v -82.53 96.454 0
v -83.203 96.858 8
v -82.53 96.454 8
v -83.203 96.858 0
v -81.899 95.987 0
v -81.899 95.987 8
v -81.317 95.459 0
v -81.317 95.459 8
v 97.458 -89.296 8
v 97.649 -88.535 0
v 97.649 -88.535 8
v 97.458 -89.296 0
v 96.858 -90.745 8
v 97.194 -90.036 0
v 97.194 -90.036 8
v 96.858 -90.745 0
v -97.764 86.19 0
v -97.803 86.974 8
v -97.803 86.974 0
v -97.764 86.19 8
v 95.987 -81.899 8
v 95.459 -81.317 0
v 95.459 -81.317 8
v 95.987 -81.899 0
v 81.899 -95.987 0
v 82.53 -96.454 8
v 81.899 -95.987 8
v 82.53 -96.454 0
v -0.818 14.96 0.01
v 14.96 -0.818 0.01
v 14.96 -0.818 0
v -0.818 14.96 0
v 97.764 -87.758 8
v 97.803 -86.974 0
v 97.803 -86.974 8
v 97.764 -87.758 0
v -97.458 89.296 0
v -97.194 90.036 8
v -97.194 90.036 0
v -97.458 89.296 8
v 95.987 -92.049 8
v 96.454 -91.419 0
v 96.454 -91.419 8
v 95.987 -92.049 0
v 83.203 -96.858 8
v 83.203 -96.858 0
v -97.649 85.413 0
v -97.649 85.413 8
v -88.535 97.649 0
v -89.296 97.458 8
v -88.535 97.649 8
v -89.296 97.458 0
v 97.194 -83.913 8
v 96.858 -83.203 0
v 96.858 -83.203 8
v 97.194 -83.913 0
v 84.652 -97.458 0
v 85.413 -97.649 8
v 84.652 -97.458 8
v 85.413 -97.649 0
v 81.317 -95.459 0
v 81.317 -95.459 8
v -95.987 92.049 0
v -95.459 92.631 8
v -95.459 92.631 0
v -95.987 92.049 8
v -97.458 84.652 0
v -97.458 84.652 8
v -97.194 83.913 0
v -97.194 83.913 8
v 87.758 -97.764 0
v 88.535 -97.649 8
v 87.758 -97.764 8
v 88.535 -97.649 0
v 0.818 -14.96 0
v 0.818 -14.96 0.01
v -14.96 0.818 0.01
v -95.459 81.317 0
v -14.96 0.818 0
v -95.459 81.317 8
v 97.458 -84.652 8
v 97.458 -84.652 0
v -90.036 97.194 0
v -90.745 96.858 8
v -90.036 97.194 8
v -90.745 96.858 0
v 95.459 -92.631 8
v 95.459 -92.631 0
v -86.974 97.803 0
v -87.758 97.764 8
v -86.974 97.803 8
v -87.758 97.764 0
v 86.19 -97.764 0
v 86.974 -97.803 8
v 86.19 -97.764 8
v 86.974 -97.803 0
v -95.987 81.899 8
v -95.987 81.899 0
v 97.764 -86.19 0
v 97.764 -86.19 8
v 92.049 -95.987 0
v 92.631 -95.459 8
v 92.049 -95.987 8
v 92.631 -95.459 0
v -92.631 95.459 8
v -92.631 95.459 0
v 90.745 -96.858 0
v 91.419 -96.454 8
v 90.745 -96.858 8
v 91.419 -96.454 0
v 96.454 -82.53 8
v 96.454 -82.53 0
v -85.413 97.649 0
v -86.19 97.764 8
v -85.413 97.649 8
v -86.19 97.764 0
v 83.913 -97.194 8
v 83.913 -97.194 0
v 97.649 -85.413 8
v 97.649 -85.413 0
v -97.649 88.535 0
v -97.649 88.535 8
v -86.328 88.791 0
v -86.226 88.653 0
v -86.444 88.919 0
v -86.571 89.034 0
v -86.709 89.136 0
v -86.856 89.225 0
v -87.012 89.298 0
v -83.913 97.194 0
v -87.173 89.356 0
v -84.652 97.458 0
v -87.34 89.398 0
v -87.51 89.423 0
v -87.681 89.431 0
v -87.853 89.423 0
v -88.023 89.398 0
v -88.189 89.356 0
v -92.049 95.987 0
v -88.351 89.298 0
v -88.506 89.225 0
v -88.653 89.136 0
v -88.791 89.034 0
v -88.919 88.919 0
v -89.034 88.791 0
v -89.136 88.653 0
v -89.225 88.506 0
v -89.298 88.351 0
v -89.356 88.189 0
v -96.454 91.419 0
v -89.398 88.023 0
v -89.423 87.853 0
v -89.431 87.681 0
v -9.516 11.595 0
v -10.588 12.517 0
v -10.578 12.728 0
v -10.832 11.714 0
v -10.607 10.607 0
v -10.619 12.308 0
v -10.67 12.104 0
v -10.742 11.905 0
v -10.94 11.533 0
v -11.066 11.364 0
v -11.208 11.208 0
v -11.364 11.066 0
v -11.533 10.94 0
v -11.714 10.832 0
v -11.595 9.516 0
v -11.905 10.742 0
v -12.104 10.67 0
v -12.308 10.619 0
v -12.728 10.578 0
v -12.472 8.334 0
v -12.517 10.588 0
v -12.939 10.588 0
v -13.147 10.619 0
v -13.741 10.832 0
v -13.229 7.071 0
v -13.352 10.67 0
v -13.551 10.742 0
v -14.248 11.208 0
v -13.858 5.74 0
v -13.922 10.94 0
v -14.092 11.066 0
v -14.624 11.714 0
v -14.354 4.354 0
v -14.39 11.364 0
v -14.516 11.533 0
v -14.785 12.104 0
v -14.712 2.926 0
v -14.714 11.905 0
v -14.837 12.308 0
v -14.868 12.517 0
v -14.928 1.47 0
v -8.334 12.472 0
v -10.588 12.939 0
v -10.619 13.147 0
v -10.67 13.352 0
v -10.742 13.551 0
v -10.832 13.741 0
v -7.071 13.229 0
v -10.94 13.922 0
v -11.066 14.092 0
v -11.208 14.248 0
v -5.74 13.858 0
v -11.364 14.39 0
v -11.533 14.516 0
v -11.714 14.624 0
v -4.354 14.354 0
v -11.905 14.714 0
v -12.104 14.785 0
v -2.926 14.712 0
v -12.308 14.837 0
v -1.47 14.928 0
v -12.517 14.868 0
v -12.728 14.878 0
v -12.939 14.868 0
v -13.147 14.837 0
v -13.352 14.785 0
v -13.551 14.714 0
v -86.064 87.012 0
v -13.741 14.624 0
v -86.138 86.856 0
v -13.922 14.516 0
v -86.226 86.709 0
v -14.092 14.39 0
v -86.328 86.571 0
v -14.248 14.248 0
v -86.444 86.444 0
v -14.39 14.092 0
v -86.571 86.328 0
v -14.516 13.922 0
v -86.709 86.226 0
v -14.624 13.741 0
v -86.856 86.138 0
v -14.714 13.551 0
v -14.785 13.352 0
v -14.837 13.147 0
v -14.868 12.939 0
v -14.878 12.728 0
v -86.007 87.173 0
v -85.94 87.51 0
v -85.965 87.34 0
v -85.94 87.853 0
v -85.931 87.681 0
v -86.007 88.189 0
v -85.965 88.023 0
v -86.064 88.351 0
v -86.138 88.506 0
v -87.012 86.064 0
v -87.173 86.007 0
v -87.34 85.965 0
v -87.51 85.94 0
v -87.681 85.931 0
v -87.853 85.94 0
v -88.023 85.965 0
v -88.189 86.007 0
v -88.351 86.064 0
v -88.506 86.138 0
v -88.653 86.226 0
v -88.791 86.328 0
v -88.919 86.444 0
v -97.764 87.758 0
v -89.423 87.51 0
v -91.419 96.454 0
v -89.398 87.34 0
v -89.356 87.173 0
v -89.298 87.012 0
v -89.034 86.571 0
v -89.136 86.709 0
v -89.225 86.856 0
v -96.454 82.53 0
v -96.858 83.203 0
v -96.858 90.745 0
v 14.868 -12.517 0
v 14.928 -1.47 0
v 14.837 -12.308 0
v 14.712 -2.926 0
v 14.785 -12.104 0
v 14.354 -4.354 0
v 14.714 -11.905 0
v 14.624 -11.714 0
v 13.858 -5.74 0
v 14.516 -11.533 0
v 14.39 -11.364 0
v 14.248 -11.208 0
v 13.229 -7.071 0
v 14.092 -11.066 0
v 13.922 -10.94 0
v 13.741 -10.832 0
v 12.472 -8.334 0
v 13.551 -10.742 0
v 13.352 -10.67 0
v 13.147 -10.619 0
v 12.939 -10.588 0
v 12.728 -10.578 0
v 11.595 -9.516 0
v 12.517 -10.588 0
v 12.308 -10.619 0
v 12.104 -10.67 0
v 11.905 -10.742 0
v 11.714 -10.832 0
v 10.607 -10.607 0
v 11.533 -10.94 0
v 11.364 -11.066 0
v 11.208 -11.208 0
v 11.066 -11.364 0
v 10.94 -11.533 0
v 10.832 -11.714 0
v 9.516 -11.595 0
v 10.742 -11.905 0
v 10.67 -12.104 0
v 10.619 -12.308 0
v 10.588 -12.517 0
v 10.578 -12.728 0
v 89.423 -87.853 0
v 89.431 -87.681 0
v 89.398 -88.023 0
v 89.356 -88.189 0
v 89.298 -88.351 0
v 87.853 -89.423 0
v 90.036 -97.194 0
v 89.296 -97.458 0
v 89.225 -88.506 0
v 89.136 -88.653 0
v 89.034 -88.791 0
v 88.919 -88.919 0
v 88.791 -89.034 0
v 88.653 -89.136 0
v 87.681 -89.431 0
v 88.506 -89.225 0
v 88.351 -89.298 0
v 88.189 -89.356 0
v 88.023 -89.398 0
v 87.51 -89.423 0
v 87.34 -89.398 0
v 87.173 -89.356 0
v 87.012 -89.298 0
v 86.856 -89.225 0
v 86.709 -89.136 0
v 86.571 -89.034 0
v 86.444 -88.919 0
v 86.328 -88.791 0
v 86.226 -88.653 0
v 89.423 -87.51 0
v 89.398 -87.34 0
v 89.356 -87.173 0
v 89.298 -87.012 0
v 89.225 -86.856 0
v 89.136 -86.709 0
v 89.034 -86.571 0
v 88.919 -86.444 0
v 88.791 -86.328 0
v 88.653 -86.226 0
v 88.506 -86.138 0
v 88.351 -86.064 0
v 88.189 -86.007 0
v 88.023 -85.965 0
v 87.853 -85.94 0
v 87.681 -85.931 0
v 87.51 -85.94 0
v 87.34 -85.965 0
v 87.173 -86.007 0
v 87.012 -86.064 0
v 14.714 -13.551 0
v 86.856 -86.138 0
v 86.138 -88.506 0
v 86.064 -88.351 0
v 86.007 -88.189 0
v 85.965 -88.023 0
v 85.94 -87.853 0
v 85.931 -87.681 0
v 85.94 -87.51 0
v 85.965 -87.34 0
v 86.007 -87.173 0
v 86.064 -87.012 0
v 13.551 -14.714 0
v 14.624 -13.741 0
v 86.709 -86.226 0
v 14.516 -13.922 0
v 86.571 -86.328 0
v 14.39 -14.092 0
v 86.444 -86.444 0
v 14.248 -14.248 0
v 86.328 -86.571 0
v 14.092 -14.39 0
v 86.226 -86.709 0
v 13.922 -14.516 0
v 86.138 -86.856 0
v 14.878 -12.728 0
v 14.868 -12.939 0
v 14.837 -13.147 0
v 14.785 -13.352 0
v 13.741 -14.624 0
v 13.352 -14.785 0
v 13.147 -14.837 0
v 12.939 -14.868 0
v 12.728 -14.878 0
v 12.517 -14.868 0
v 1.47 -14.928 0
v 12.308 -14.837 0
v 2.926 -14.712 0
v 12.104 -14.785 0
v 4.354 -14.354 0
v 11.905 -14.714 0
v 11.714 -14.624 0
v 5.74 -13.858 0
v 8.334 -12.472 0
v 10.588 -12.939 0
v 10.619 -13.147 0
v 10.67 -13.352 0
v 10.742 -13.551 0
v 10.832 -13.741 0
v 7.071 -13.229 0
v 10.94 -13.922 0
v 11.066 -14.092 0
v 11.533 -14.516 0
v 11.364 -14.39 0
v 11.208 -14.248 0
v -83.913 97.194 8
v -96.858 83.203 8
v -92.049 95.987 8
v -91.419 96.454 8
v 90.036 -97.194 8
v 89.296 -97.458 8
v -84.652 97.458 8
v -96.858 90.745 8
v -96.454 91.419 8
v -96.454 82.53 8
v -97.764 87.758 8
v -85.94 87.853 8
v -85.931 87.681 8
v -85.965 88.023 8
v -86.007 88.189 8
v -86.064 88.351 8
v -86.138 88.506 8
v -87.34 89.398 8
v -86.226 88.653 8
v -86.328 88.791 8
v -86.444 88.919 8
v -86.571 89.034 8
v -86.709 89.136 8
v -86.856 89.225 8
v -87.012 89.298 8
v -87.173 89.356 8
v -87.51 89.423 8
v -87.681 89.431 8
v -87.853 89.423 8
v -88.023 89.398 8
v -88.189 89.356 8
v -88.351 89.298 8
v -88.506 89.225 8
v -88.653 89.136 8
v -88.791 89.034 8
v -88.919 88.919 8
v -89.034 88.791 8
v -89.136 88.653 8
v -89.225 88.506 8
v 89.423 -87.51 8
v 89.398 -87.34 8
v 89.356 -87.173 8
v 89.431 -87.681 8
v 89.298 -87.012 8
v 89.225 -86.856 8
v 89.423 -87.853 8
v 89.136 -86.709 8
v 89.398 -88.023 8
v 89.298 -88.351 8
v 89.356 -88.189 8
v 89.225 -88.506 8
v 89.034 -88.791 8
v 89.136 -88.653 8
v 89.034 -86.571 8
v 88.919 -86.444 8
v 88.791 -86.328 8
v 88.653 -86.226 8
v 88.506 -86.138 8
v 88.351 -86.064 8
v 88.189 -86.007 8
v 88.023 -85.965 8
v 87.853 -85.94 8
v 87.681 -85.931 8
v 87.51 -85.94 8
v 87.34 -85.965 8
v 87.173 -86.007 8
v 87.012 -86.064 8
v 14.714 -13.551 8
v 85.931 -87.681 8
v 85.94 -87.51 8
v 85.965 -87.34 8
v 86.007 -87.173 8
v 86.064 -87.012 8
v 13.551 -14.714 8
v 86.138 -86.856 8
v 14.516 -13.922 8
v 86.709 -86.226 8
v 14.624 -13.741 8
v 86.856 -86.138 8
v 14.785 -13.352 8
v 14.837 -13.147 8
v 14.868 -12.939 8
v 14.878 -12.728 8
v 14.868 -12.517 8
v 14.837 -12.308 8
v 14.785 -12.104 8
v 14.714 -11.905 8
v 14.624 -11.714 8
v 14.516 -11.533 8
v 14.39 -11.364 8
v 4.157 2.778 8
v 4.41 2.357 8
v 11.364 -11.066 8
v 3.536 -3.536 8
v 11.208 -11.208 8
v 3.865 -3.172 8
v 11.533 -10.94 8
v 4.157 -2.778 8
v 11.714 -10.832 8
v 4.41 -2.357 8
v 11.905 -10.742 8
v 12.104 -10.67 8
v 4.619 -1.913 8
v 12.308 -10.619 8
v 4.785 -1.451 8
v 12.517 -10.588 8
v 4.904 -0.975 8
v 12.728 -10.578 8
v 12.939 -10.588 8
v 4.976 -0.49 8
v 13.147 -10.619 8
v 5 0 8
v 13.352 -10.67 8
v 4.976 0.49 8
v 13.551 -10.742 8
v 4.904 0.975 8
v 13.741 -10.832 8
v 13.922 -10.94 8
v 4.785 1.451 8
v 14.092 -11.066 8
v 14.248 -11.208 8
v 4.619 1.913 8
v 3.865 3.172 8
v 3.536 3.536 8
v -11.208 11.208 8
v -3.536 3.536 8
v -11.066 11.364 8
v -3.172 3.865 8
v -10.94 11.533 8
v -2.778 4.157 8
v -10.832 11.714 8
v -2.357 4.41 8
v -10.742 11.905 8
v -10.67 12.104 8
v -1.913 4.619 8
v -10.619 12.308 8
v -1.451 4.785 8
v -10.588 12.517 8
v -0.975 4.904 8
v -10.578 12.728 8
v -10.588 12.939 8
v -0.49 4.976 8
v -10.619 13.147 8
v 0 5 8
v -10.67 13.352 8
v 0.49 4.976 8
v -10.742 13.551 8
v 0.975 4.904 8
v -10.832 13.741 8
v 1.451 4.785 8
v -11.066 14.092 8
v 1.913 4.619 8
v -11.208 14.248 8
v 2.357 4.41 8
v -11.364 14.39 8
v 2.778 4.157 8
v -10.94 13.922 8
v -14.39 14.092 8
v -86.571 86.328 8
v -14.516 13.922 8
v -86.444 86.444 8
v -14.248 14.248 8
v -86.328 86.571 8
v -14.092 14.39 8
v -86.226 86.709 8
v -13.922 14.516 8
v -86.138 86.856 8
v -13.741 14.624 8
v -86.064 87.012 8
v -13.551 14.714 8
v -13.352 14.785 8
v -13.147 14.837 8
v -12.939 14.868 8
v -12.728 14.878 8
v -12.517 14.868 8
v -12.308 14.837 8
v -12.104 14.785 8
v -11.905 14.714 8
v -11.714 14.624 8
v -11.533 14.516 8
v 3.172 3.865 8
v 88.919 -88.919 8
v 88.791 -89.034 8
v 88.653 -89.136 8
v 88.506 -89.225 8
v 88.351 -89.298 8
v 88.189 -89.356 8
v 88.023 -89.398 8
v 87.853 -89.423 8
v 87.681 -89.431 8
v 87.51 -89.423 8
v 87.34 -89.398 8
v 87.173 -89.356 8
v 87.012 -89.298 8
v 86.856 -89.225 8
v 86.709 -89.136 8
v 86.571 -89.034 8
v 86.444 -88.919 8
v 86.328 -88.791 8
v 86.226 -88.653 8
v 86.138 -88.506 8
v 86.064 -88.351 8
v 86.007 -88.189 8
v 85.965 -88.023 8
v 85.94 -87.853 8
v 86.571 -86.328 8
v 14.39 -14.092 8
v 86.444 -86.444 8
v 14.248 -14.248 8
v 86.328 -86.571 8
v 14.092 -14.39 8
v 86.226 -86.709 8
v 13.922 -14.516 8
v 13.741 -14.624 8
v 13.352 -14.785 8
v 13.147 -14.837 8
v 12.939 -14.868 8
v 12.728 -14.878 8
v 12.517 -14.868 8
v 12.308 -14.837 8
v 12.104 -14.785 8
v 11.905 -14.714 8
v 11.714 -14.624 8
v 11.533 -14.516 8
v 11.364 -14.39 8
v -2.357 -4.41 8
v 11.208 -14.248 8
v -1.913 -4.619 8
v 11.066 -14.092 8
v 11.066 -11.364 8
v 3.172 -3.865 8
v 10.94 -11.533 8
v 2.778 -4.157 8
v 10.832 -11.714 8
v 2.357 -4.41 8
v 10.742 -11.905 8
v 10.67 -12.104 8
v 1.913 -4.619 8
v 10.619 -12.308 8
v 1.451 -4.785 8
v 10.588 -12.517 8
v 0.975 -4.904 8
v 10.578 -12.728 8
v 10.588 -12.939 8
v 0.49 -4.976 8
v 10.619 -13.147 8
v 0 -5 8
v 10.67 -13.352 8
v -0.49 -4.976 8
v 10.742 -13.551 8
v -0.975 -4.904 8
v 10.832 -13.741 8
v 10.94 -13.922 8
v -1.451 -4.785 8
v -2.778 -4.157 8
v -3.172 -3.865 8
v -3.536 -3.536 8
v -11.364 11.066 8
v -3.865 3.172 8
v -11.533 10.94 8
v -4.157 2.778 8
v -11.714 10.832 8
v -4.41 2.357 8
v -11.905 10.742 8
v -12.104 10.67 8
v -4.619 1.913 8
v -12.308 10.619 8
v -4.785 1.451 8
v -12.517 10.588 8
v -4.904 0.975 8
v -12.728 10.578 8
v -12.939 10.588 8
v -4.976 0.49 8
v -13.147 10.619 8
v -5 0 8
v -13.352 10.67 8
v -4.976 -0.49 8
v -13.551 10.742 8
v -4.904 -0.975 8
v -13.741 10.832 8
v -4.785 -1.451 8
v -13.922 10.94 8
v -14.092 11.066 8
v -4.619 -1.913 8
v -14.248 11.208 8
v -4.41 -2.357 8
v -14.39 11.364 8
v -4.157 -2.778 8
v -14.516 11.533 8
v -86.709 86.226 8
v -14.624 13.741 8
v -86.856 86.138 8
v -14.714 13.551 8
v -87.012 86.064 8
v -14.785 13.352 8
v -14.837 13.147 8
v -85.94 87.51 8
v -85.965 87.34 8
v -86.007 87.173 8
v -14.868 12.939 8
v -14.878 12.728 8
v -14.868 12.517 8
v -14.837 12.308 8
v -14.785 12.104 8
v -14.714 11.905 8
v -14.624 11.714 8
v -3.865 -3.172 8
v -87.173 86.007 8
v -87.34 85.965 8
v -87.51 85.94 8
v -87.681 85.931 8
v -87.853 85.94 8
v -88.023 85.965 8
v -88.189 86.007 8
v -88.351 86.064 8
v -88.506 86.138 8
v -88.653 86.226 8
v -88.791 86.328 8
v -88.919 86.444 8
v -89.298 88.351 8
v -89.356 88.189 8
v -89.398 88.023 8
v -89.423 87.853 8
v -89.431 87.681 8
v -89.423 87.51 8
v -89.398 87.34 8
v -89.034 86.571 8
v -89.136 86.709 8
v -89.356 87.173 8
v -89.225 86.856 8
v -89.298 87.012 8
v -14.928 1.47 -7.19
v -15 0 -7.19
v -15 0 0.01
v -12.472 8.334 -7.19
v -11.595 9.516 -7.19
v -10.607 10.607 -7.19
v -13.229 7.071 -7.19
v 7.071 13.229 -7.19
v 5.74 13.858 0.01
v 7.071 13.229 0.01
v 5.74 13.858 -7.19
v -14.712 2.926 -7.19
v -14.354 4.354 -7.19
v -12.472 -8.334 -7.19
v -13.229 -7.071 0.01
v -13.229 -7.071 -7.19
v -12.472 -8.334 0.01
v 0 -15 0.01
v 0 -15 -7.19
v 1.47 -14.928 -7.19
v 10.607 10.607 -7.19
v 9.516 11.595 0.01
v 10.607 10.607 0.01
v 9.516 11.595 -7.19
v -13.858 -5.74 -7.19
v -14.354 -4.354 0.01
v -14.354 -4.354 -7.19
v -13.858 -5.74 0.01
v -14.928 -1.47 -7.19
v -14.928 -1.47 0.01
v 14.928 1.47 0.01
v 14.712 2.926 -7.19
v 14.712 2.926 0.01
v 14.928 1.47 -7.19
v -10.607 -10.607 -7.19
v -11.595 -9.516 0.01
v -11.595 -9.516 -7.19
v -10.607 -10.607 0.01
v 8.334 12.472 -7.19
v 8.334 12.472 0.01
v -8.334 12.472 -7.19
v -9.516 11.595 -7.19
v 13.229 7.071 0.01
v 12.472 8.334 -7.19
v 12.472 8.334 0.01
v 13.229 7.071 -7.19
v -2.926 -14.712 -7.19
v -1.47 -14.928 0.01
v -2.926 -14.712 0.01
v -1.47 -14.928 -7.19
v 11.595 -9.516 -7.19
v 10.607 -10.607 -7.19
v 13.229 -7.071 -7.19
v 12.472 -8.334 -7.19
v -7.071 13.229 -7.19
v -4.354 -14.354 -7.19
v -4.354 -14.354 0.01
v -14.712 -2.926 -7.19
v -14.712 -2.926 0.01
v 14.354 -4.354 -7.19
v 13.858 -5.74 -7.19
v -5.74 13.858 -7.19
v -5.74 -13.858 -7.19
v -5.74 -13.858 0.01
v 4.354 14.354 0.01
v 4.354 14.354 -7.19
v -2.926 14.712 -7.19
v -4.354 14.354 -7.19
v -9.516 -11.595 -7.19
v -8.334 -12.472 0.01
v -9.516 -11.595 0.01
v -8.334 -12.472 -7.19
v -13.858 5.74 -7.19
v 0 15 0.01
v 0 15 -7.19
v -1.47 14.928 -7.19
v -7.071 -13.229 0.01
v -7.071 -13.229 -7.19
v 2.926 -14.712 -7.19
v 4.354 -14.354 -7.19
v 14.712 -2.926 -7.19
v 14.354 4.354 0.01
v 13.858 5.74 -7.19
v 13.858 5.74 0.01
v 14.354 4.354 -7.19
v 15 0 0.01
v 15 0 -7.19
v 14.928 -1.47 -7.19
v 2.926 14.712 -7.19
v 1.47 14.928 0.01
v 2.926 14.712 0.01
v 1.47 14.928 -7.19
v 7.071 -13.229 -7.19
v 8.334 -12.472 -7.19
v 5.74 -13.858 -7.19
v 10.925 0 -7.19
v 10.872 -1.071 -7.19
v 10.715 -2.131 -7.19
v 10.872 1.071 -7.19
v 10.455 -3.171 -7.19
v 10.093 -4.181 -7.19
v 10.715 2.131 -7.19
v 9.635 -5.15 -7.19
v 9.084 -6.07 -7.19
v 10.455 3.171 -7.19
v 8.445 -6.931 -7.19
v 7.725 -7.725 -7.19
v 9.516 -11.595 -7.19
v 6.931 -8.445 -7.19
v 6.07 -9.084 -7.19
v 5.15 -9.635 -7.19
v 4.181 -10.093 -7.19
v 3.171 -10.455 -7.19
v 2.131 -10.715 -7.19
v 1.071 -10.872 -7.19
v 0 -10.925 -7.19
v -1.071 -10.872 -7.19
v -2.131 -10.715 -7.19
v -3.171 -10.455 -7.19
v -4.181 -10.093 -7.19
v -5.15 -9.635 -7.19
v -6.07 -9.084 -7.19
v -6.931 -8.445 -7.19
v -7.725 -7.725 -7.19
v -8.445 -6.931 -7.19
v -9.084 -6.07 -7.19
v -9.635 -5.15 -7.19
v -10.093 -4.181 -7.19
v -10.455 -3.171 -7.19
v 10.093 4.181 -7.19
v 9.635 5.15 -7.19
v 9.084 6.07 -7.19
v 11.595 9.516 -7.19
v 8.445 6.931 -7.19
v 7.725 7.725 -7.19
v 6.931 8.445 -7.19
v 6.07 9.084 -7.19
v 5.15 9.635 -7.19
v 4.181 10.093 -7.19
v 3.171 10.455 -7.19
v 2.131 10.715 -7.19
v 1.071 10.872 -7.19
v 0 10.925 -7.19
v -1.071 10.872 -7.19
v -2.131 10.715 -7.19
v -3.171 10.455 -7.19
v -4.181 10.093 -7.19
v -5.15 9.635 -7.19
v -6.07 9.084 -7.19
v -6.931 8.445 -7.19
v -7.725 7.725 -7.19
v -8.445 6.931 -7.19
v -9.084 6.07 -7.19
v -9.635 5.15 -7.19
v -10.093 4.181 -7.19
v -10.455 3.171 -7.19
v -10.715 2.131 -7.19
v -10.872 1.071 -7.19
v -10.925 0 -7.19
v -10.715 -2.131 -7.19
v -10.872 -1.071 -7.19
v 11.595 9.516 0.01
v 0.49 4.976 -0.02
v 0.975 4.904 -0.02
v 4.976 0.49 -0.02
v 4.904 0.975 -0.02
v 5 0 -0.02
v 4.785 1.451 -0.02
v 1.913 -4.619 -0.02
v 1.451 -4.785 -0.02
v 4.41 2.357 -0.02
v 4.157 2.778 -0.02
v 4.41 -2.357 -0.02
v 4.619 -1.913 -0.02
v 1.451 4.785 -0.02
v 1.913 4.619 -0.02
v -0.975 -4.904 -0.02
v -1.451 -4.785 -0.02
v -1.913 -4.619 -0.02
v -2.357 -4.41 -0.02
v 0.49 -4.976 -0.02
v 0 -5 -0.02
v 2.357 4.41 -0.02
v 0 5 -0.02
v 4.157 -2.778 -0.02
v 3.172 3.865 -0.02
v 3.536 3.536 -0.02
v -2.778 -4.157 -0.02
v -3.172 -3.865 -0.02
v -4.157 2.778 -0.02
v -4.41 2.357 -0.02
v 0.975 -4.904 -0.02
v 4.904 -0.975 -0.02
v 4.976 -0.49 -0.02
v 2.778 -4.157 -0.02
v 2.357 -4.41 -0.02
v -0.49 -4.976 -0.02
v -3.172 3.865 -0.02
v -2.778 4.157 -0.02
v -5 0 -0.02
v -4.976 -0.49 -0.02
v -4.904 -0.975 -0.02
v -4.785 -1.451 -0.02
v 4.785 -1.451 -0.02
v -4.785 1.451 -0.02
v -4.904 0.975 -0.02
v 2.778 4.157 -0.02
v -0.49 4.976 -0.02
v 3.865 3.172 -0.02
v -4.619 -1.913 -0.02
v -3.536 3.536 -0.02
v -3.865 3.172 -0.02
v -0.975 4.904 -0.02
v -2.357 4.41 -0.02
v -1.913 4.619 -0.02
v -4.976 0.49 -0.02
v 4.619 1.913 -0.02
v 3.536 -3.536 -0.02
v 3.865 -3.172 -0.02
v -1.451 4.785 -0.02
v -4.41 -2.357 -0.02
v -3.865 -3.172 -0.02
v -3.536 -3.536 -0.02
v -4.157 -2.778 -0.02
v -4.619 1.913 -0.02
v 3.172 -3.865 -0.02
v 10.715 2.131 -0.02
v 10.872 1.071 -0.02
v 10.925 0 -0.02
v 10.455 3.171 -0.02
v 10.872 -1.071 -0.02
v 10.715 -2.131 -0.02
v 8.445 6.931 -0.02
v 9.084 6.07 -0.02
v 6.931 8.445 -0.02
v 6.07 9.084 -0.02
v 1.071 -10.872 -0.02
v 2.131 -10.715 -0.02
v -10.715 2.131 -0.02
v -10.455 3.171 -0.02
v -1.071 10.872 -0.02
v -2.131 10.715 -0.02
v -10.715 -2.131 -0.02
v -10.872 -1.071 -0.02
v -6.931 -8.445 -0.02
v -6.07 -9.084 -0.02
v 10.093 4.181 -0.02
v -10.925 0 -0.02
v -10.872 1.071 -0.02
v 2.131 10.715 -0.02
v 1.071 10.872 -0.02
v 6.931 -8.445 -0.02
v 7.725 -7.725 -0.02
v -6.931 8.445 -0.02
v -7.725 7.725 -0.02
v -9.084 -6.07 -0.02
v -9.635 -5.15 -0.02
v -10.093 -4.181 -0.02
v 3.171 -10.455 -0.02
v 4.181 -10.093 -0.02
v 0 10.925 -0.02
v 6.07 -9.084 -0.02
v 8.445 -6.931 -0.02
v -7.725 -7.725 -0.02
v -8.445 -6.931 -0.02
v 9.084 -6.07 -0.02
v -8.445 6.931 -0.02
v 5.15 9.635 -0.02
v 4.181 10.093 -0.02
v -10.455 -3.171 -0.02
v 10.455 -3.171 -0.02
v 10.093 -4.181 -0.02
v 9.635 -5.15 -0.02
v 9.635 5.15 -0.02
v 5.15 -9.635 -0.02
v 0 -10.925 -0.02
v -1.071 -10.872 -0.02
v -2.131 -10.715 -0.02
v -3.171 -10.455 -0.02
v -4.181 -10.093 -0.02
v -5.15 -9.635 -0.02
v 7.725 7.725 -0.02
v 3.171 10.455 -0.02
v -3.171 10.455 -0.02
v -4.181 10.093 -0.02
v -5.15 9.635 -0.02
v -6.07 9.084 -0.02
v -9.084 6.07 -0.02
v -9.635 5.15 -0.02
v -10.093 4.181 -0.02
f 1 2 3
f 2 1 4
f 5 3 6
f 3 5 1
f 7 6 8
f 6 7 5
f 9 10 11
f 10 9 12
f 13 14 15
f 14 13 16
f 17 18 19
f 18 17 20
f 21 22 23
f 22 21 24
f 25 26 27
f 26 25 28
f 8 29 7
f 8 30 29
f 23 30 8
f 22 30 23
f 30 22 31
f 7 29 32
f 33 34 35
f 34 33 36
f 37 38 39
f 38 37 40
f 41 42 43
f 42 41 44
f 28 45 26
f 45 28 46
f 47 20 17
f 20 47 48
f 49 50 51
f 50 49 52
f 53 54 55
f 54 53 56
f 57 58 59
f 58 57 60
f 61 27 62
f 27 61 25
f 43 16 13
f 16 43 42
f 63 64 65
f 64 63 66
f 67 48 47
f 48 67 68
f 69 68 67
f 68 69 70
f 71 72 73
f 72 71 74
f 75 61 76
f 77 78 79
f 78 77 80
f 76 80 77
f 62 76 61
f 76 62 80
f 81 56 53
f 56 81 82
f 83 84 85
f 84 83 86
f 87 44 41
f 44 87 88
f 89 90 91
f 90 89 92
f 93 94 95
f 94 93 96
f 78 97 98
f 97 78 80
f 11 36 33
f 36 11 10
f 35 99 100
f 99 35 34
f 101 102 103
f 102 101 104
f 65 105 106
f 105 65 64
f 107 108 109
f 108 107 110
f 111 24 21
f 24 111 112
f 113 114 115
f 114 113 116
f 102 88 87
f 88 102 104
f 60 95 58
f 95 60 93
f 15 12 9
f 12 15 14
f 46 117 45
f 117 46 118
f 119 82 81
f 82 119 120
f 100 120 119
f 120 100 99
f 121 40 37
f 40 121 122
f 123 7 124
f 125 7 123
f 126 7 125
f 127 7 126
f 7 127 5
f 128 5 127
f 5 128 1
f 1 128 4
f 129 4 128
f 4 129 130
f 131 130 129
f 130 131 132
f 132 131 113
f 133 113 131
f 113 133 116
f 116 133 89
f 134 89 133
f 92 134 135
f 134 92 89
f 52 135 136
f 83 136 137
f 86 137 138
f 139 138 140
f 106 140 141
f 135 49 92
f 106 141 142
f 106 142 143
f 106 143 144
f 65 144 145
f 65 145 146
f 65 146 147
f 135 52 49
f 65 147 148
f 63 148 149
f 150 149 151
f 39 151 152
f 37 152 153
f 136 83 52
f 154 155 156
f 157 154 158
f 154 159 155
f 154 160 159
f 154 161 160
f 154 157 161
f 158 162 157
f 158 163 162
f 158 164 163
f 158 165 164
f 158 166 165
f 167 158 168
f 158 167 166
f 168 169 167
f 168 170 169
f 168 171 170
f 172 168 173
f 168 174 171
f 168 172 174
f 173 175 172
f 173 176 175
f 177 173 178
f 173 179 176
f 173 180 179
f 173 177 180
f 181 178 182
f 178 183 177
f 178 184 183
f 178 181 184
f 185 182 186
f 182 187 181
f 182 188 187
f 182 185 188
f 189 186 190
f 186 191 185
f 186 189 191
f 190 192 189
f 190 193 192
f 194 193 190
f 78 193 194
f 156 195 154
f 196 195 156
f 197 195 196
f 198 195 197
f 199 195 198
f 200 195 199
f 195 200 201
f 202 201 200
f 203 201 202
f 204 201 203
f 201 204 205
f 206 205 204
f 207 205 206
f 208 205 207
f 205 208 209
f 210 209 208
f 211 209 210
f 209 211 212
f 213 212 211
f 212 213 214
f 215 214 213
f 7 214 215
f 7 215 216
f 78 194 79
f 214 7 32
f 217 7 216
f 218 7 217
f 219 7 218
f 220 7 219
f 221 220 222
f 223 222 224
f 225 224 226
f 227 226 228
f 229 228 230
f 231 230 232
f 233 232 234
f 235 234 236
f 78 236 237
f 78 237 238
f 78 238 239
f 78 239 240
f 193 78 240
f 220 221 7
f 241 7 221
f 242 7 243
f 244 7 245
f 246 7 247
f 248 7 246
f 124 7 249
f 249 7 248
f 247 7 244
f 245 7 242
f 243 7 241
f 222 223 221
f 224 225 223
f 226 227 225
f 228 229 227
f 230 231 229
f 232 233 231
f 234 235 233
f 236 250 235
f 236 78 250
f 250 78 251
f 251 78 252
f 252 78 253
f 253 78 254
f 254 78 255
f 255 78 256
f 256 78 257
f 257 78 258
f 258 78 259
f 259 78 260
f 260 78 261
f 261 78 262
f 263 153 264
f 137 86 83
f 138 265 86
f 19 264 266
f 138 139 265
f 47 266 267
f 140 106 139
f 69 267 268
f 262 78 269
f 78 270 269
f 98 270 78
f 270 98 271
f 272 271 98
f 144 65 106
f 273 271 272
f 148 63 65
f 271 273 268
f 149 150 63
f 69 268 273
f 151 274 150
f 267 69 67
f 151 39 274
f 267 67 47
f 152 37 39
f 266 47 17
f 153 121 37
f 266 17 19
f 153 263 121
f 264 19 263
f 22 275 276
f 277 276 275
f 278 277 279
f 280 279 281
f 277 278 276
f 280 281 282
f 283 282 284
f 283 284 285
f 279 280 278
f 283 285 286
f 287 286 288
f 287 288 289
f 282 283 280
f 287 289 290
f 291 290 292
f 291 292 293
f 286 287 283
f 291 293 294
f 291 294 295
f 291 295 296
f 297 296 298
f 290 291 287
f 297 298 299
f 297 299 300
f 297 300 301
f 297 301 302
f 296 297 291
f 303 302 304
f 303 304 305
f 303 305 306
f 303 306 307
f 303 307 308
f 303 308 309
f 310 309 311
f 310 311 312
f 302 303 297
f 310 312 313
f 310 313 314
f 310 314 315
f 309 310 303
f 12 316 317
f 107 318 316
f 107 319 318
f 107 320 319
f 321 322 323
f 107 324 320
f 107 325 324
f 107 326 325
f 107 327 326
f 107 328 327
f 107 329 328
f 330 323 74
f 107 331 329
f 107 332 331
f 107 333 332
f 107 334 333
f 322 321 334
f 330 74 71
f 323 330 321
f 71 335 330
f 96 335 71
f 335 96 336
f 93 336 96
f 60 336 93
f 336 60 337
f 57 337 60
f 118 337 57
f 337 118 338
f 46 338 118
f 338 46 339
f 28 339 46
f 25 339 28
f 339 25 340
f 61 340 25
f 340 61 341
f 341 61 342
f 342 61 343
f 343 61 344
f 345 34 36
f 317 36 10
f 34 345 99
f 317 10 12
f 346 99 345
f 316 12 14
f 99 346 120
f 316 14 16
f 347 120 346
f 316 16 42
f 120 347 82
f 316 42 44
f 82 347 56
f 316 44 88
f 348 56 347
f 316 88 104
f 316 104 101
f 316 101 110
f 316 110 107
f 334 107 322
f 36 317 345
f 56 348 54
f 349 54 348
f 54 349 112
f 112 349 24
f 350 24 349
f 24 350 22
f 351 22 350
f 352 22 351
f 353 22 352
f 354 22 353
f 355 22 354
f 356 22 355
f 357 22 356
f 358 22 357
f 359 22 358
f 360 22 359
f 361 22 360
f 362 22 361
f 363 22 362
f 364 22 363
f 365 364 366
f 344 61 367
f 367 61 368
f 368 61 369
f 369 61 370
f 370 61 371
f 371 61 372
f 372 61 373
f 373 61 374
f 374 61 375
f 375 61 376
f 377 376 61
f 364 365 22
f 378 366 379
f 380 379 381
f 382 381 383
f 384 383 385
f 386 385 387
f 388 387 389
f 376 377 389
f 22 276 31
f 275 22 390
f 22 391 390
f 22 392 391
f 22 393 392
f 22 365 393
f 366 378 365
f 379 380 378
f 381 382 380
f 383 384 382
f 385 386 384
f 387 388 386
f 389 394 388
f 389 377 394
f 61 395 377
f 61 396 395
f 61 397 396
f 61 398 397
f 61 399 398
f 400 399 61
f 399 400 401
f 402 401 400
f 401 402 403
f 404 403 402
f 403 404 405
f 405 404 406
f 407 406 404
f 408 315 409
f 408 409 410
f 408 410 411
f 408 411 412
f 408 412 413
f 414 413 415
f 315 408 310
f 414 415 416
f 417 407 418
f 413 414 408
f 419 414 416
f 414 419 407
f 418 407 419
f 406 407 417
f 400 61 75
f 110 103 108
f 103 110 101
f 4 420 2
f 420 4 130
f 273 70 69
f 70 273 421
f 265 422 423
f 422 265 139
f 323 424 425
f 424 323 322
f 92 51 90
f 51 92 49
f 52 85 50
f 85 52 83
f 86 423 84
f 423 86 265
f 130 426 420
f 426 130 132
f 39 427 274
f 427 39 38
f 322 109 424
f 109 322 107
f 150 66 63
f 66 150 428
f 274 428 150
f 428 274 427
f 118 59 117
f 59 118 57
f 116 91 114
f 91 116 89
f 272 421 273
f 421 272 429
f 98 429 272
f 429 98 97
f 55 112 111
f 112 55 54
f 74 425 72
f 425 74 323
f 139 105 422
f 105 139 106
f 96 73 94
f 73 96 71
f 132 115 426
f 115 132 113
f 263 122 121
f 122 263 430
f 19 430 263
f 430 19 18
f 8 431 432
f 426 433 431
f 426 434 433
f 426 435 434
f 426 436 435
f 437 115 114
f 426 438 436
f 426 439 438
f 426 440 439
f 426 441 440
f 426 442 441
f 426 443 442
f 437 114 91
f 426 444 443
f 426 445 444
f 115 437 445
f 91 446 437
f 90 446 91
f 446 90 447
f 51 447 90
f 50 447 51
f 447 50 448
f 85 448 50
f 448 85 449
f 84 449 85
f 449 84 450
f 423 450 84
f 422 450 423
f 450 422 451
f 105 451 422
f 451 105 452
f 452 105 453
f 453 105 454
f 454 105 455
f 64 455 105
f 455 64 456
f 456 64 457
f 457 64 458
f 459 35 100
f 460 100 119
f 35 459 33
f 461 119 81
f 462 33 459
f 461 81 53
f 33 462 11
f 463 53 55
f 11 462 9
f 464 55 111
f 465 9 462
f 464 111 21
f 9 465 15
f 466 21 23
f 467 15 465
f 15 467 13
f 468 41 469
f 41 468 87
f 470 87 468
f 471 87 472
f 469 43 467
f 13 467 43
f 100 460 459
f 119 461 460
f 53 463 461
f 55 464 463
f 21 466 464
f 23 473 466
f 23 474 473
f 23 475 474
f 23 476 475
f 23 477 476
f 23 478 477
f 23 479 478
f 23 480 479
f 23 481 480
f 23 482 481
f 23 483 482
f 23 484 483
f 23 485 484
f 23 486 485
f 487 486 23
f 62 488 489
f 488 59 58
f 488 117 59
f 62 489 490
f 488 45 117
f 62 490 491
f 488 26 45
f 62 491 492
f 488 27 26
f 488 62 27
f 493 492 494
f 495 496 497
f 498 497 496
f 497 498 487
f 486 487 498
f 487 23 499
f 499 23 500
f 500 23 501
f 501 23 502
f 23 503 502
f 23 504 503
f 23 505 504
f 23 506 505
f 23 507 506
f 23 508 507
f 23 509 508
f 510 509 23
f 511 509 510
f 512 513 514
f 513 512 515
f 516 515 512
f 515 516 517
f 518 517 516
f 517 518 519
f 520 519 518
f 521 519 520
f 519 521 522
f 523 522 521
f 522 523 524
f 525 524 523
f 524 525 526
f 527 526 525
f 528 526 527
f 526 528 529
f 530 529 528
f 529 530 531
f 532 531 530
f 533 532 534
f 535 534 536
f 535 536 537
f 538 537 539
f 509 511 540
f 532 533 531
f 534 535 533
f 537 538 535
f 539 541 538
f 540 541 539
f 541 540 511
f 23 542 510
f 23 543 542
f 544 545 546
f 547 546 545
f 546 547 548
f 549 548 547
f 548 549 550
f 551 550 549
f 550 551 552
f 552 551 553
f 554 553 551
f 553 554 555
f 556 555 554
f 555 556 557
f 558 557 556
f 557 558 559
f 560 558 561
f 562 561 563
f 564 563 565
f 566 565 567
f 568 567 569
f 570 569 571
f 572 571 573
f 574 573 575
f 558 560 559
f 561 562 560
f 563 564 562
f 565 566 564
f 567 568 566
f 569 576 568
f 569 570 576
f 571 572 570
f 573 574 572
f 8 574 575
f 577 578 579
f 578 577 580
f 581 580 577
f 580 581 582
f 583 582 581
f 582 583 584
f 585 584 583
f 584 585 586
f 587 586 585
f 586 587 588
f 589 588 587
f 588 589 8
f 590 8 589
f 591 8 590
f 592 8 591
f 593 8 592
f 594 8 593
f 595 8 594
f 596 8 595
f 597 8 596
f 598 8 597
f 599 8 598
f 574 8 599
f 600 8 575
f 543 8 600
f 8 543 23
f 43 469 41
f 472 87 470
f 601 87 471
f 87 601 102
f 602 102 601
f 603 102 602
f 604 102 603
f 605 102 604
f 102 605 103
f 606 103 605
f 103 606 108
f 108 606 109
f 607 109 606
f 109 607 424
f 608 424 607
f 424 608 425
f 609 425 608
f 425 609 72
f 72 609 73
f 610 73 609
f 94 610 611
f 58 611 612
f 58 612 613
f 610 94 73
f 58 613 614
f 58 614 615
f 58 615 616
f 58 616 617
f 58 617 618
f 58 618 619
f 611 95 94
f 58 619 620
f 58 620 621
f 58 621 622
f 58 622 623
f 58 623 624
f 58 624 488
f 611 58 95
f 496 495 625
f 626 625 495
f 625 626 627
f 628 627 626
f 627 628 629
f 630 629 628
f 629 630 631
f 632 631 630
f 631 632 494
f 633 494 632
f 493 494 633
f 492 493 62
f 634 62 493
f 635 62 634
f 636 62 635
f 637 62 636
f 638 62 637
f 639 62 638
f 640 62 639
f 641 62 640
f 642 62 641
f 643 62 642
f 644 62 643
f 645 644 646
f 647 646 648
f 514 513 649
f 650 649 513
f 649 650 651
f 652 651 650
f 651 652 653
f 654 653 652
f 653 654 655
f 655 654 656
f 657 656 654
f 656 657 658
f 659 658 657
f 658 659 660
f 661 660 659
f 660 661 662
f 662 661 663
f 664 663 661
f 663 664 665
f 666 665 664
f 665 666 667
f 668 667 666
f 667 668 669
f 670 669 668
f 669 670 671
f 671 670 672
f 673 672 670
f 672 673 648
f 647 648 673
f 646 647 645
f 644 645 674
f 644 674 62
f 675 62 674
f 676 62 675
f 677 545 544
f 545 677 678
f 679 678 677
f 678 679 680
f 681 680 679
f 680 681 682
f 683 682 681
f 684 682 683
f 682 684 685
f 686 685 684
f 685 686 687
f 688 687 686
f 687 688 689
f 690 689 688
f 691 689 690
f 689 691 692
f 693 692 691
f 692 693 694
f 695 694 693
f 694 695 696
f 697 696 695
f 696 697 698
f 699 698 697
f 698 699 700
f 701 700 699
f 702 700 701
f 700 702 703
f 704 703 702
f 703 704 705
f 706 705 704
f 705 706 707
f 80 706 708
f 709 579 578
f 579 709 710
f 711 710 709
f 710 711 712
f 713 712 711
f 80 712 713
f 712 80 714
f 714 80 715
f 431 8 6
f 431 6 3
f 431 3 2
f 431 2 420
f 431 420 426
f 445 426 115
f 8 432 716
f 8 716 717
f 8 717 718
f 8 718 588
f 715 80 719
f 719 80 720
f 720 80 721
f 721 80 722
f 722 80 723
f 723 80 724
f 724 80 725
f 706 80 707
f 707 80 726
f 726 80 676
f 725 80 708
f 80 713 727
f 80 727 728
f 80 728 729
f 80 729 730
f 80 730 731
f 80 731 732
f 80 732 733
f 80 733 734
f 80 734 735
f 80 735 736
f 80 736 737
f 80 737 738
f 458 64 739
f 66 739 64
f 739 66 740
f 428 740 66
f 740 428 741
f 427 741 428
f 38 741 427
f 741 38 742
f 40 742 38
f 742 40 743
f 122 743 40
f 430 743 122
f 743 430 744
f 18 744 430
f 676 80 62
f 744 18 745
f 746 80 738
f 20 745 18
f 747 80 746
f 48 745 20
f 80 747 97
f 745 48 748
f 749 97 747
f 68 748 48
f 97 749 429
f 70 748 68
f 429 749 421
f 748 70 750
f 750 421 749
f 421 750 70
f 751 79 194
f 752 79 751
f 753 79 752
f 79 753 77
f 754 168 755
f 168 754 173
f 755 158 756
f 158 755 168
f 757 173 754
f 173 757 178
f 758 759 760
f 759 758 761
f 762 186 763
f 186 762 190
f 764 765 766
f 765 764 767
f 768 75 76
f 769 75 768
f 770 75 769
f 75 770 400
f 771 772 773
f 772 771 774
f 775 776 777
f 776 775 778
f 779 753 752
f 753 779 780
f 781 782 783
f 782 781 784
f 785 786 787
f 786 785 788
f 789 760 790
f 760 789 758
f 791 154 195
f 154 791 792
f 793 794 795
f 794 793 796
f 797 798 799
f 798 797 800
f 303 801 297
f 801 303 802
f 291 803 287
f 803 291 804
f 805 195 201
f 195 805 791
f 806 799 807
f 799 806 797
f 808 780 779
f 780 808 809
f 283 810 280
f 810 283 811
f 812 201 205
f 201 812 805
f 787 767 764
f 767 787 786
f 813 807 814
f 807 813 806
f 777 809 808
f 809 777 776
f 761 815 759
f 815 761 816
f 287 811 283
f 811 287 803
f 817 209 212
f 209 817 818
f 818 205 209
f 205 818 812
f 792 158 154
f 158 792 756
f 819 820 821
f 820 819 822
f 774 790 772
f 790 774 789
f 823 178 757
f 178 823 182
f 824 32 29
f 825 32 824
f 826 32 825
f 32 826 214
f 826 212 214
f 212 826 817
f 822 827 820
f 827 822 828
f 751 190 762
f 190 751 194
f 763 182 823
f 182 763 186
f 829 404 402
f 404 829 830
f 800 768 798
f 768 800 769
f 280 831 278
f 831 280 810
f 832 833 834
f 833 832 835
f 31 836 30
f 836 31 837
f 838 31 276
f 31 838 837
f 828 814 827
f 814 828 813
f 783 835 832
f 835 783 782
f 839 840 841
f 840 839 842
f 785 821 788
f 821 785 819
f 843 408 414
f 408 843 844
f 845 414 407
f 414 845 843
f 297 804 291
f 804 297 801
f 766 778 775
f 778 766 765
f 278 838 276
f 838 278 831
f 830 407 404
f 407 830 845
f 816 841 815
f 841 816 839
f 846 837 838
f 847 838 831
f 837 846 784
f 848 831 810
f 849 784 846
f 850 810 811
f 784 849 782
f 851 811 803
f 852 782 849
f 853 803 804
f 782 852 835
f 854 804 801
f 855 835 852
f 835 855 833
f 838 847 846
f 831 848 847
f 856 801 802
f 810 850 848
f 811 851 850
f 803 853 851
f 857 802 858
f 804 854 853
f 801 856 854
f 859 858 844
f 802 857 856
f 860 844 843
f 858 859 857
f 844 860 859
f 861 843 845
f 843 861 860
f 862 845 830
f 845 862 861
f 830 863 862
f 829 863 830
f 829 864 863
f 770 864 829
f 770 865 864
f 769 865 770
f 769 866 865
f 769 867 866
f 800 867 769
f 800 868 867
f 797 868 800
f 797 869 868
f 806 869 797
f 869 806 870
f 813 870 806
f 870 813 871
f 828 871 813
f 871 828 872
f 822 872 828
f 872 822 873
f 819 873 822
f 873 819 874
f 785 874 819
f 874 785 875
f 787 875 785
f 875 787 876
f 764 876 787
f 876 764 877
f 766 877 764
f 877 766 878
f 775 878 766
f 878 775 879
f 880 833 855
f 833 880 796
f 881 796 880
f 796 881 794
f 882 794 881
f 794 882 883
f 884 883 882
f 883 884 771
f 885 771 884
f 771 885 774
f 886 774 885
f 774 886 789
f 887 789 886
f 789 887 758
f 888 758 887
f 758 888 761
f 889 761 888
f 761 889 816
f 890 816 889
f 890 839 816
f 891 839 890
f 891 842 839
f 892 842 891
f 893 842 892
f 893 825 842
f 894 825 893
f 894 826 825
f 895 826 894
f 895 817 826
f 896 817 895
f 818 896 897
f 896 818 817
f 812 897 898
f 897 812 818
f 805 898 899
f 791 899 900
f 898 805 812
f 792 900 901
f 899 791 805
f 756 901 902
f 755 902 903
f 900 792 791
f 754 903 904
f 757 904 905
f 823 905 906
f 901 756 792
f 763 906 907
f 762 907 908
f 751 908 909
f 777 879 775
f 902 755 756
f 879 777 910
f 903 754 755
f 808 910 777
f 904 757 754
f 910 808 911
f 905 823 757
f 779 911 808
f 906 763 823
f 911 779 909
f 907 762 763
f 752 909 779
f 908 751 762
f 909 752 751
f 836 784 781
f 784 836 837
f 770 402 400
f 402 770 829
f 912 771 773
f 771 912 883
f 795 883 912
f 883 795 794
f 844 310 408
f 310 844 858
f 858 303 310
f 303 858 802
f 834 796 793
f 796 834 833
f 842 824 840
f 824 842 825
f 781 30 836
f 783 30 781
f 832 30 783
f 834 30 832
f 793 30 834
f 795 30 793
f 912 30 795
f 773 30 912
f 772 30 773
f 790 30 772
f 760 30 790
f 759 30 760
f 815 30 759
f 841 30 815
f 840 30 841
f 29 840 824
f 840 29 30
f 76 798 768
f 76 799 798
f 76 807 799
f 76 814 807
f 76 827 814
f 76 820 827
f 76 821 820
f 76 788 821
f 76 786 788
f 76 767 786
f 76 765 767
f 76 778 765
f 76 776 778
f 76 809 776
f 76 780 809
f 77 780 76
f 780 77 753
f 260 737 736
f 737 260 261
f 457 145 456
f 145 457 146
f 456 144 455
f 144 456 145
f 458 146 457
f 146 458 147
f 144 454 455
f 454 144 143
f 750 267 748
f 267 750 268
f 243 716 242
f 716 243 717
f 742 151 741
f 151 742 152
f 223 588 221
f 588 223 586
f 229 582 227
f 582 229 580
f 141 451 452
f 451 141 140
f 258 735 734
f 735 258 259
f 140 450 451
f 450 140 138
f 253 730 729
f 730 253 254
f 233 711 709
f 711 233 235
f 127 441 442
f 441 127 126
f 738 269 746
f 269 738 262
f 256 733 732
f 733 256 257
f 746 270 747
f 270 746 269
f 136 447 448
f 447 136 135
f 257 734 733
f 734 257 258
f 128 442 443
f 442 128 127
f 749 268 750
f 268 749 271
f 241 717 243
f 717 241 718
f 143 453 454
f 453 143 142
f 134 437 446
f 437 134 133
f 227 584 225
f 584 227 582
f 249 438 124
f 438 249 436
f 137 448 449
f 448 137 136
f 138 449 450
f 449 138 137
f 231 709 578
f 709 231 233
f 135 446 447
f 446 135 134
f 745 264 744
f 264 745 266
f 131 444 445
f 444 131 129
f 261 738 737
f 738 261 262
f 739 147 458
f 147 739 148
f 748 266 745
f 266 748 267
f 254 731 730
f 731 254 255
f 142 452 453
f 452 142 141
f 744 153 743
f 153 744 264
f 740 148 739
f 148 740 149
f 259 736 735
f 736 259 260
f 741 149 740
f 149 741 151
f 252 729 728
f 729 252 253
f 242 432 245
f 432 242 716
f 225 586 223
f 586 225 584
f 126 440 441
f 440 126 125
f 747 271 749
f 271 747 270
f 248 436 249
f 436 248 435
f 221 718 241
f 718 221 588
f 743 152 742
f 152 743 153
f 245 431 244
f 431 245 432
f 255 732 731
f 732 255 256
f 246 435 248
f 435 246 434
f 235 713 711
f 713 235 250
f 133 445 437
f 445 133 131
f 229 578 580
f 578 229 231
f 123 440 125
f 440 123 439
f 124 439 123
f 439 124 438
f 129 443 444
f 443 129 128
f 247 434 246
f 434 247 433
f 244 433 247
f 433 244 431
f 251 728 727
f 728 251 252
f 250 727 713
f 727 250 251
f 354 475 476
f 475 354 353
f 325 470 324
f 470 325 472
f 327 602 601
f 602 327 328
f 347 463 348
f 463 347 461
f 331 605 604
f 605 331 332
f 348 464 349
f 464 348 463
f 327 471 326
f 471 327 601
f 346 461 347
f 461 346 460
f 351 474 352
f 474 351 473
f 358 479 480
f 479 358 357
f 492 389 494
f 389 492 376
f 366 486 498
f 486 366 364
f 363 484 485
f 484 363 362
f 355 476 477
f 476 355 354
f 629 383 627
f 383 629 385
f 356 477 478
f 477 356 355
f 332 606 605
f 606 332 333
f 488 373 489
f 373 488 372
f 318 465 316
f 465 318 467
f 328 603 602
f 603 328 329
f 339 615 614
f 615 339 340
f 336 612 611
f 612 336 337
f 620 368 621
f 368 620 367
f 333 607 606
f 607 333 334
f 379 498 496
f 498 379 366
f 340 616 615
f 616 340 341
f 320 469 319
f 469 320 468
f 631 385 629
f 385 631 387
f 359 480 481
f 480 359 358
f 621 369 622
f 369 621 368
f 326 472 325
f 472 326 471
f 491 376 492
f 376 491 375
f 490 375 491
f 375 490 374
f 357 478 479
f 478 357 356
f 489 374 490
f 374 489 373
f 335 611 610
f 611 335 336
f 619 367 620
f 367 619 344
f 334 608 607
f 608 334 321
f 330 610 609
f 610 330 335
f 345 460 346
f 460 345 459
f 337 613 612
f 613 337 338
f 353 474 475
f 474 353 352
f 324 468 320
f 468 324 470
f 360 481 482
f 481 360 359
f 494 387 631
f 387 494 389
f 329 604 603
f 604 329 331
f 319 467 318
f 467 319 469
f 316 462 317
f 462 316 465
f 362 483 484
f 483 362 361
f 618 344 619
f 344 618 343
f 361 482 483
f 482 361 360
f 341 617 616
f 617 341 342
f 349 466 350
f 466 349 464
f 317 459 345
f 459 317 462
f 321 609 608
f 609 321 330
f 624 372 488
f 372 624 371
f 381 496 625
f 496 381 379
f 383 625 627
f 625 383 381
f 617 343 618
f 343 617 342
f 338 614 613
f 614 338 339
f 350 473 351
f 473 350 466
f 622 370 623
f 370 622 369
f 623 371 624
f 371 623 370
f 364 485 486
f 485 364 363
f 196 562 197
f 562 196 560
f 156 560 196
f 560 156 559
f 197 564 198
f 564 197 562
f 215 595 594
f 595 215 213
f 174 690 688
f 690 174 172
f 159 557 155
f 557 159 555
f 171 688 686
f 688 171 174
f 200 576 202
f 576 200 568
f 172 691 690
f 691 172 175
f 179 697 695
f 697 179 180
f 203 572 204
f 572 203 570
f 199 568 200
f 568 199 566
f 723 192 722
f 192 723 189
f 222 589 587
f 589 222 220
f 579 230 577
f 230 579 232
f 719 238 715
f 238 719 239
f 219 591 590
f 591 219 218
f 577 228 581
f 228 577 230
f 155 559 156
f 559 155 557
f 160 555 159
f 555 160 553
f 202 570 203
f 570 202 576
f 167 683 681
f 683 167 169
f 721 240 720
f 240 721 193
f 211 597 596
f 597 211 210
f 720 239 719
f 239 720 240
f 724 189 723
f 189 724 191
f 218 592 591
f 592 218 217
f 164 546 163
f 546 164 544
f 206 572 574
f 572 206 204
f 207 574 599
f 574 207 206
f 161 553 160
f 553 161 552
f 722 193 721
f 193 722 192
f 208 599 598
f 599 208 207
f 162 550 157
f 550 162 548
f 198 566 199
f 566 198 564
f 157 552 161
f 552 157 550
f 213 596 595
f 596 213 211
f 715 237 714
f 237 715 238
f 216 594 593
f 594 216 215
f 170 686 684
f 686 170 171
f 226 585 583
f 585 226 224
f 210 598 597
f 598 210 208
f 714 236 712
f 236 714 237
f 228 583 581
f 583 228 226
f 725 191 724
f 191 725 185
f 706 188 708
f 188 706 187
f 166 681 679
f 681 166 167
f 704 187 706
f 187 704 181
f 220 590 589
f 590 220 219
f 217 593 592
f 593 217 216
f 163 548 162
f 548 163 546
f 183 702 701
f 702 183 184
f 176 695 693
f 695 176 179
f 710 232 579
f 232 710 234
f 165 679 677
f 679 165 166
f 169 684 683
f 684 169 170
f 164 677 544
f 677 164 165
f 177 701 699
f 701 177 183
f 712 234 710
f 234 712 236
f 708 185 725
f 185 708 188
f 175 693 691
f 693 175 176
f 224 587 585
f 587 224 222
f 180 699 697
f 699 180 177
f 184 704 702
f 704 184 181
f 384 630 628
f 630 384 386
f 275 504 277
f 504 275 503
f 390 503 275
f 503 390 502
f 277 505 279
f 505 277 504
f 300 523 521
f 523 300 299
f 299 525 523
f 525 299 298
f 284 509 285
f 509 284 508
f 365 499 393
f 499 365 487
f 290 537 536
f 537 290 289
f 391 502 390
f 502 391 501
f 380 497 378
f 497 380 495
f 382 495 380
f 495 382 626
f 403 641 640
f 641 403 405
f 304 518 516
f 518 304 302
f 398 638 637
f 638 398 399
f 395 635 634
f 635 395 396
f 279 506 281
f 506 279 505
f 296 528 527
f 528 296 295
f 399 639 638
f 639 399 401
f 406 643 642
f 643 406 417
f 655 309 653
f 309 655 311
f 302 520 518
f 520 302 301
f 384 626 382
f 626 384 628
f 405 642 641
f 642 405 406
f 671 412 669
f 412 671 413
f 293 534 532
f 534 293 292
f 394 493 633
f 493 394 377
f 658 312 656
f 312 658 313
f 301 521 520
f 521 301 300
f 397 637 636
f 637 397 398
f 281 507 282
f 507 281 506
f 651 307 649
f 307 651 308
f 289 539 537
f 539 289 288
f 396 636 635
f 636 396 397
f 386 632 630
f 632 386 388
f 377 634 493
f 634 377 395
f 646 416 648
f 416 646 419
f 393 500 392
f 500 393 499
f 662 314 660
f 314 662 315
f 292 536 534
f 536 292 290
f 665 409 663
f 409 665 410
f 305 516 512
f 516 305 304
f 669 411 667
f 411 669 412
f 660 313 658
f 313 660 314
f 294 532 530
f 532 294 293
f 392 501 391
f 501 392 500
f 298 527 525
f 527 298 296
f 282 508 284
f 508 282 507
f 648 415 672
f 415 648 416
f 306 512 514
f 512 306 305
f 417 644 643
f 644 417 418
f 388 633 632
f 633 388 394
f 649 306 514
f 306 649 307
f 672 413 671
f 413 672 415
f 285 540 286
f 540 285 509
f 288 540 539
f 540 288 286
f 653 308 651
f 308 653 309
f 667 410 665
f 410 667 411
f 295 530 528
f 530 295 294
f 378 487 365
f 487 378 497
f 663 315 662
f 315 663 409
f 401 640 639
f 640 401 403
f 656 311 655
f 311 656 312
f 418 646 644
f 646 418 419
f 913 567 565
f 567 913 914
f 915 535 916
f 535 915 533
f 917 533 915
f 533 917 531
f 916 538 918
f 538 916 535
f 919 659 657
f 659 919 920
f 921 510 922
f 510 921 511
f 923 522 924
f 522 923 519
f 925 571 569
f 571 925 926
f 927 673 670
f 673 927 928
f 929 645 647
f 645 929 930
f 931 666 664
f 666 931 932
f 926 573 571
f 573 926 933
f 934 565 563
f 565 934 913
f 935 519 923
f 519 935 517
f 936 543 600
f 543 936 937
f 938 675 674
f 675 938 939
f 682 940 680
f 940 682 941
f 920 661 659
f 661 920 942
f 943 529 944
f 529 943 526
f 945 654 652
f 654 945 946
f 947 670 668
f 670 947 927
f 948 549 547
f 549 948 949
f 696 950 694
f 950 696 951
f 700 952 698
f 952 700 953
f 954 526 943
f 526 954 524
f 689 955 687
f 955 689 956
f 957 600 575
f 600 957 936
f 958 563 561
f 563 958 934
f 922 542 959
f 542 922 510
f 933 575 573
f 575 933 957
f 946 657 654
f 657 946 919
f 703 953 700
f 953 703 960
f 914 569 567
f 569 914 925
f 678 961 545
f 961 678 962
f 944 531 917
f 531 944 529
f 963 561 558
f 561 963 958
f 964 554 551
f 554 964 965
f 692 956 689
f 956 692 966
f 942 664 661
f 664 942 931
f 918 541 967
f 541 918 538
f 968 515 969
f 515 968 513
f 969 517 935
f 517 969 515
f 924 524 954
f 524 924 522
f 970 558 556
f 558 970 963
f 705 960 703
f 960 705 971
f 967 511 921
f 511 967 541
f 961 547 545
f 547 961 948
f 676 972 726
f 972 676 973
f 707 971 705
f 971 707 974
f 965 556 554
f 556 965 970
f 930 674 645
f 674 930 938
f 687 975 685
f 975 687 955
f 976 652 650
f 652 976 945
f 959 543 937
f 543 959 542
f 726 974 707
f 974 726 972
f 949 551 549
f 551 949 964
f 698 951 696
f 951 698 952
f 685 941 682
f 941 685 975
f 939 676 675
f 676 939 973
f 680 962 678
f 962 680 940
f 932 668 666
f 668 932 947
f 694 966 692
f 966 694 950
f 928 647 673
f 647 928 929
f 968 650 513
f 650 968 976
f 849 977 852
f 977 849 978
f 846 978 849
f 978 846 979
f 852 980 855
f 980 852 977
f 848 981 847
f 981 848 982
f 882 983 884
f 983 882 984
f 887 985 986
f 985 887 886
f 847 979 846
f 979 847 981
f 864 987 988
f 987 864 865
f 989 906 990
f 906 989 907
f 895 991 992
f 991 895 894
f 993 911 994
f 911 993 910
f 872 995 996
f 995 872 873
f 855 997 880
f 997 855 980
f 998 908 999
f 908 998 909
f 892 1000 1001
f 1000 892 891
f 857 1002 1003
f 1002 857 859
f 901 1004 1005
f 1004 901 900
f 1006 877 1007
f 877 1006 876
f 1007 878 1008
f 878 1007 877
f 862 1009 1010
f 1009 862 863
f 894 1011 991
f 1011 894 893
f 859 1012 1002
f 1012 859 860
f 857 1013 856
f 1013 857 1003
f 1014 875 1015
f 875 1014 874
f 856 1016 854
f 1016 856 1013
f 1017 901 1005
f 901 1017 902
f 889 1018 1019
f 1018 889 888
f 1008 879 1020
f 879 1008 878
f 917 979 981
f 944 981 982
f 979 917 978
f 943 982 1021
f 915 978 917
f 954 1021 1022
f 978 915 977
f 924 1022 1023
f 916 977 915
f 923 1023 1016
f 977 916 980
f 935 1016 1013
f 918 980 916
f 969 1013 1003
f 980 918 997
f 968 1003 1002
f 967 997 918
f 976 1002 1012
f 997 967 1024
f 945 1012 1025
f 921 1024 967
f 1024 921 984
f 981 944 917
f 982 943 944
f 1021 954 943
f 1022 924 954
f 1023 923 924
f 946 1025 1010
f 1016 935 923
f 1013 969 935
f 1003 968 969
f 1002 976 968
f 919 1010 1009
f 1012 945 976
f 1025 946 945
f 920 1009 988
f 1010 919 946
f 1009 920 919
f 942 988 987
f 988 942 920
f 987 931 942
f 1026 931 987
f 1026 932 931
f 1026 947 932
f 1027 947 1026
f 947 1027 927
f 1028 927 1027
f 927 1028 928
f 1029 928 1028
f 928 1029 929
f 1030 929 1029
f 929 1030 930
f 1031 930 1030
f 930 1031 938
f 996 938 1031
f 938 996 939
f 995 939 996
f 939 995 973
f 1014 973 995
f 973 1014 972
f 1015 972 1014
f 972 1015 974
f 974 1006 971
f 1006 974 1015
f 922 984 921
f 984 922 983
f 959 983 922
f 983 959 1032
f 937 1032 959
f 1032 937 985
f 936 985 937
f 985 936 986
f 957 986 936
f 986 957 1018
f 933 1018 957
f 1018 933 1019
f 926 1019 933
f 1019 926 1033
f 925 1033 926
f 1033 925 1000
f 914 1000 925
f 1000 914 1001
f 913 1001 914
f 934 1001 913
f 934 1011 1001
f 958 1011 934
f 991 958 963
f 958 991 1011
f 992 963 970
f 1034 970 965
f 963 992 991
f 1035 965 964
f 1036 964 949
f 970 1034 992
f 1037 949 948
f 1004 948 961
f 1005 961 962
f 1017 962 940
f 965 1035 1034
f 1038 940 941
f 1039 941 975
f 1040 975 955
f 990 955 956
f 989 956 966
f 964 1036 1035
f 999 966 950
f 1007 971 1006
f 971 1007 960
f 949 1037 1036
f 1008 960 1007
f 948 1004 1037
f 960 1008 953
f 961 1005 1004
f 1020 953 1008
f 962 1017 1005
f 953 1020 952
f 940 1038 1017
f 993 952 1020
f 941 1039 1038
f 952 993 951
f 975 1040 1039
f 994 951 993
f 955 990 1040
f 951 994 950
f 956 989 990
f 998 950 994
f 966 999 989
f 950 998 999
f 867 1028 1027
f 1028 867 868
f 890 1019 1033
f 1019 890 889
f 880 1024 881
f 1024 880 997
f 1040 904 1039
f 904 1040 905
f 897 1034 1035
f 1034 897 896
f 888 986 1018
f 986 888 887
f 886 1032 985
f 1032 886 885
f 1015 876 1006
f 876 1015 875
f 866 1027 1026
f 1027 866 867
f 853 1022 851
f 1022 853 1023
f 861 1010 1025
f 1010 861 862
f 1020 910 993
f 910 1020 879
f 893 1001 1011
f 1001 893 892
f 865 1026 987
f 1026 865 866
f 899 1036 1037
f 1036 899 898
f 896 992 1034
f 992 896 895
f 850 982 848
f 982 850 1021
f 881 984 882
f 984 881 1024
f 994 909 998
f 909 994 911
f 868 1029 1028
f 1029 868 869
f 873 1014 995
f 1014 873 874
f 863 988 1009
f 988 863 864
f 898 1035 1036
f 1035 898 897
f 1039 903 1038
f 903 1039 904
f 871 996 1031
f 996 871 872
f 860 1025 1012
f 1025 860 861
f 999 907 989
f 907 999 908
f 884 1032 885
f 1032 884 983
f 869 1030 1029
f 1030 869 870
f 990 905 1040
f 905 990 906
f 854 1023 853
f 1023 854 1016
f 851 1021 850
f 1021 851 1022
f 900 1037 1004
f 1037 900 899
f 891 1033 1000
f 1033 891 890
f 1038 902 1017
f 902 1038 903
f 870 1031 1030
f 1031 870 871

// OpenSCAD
// Gen-DE — rear BEARING BRIDGE (bar endbell, 2026-10-10): a 608 boss on a 20 mm wide bar that spans the
// two frame rods at 135 deg and 135+180 deg (R = flange_bolt_r). The front bridge uses the rods at 45/225 deg, the rear
// bridge the rods at 135/315 deg, so the two bridges cross at 90 deg and the stator is held at 4 points.
// A bar instead of a full disc is what lets this big-ring kit fit ONE 410 mm plate. Print flat face DOWN (boss up, no supports).
// Brace holes (temporary M4 jack rods, R = brace_r) sit on the bar axis.
include <parameters.scad>;
$fn = 64;
bar_w = 20;
bar_len = 2 * (flange_bolt_r + 9);
module bar_2d() { offset(r=8) offset(delta=-8) square([bar_len, bar_w], center=true); }
difference() {
    rotate([0, 0, 135]) union() {
        linear_extrude(endbell_thick) bar_2d();
        translate([0, 0, -bearing_h + 0.01]) cylinder(d=30, h=bearing_h);
    }
    translate([0, 0, -bearing_h - 0.1]) cylinder(d=endbell_shaft_clear, h=50);
    translate([0, 0, -bearing_h - 0.02]) cylinder(d=bearing_d, h=bearing_h);
    for (s = [0, 180]) rotate([0, 0, 135 + s]) translate([flange_bolt_r, 0, -20]) cylinder(d=m3_clear, h=60);
    for (a = brace_angles) translate([brace_r*cos(a), brace_r*sin(a), -20]) cylinder(d=brace_d, h=50);
}
